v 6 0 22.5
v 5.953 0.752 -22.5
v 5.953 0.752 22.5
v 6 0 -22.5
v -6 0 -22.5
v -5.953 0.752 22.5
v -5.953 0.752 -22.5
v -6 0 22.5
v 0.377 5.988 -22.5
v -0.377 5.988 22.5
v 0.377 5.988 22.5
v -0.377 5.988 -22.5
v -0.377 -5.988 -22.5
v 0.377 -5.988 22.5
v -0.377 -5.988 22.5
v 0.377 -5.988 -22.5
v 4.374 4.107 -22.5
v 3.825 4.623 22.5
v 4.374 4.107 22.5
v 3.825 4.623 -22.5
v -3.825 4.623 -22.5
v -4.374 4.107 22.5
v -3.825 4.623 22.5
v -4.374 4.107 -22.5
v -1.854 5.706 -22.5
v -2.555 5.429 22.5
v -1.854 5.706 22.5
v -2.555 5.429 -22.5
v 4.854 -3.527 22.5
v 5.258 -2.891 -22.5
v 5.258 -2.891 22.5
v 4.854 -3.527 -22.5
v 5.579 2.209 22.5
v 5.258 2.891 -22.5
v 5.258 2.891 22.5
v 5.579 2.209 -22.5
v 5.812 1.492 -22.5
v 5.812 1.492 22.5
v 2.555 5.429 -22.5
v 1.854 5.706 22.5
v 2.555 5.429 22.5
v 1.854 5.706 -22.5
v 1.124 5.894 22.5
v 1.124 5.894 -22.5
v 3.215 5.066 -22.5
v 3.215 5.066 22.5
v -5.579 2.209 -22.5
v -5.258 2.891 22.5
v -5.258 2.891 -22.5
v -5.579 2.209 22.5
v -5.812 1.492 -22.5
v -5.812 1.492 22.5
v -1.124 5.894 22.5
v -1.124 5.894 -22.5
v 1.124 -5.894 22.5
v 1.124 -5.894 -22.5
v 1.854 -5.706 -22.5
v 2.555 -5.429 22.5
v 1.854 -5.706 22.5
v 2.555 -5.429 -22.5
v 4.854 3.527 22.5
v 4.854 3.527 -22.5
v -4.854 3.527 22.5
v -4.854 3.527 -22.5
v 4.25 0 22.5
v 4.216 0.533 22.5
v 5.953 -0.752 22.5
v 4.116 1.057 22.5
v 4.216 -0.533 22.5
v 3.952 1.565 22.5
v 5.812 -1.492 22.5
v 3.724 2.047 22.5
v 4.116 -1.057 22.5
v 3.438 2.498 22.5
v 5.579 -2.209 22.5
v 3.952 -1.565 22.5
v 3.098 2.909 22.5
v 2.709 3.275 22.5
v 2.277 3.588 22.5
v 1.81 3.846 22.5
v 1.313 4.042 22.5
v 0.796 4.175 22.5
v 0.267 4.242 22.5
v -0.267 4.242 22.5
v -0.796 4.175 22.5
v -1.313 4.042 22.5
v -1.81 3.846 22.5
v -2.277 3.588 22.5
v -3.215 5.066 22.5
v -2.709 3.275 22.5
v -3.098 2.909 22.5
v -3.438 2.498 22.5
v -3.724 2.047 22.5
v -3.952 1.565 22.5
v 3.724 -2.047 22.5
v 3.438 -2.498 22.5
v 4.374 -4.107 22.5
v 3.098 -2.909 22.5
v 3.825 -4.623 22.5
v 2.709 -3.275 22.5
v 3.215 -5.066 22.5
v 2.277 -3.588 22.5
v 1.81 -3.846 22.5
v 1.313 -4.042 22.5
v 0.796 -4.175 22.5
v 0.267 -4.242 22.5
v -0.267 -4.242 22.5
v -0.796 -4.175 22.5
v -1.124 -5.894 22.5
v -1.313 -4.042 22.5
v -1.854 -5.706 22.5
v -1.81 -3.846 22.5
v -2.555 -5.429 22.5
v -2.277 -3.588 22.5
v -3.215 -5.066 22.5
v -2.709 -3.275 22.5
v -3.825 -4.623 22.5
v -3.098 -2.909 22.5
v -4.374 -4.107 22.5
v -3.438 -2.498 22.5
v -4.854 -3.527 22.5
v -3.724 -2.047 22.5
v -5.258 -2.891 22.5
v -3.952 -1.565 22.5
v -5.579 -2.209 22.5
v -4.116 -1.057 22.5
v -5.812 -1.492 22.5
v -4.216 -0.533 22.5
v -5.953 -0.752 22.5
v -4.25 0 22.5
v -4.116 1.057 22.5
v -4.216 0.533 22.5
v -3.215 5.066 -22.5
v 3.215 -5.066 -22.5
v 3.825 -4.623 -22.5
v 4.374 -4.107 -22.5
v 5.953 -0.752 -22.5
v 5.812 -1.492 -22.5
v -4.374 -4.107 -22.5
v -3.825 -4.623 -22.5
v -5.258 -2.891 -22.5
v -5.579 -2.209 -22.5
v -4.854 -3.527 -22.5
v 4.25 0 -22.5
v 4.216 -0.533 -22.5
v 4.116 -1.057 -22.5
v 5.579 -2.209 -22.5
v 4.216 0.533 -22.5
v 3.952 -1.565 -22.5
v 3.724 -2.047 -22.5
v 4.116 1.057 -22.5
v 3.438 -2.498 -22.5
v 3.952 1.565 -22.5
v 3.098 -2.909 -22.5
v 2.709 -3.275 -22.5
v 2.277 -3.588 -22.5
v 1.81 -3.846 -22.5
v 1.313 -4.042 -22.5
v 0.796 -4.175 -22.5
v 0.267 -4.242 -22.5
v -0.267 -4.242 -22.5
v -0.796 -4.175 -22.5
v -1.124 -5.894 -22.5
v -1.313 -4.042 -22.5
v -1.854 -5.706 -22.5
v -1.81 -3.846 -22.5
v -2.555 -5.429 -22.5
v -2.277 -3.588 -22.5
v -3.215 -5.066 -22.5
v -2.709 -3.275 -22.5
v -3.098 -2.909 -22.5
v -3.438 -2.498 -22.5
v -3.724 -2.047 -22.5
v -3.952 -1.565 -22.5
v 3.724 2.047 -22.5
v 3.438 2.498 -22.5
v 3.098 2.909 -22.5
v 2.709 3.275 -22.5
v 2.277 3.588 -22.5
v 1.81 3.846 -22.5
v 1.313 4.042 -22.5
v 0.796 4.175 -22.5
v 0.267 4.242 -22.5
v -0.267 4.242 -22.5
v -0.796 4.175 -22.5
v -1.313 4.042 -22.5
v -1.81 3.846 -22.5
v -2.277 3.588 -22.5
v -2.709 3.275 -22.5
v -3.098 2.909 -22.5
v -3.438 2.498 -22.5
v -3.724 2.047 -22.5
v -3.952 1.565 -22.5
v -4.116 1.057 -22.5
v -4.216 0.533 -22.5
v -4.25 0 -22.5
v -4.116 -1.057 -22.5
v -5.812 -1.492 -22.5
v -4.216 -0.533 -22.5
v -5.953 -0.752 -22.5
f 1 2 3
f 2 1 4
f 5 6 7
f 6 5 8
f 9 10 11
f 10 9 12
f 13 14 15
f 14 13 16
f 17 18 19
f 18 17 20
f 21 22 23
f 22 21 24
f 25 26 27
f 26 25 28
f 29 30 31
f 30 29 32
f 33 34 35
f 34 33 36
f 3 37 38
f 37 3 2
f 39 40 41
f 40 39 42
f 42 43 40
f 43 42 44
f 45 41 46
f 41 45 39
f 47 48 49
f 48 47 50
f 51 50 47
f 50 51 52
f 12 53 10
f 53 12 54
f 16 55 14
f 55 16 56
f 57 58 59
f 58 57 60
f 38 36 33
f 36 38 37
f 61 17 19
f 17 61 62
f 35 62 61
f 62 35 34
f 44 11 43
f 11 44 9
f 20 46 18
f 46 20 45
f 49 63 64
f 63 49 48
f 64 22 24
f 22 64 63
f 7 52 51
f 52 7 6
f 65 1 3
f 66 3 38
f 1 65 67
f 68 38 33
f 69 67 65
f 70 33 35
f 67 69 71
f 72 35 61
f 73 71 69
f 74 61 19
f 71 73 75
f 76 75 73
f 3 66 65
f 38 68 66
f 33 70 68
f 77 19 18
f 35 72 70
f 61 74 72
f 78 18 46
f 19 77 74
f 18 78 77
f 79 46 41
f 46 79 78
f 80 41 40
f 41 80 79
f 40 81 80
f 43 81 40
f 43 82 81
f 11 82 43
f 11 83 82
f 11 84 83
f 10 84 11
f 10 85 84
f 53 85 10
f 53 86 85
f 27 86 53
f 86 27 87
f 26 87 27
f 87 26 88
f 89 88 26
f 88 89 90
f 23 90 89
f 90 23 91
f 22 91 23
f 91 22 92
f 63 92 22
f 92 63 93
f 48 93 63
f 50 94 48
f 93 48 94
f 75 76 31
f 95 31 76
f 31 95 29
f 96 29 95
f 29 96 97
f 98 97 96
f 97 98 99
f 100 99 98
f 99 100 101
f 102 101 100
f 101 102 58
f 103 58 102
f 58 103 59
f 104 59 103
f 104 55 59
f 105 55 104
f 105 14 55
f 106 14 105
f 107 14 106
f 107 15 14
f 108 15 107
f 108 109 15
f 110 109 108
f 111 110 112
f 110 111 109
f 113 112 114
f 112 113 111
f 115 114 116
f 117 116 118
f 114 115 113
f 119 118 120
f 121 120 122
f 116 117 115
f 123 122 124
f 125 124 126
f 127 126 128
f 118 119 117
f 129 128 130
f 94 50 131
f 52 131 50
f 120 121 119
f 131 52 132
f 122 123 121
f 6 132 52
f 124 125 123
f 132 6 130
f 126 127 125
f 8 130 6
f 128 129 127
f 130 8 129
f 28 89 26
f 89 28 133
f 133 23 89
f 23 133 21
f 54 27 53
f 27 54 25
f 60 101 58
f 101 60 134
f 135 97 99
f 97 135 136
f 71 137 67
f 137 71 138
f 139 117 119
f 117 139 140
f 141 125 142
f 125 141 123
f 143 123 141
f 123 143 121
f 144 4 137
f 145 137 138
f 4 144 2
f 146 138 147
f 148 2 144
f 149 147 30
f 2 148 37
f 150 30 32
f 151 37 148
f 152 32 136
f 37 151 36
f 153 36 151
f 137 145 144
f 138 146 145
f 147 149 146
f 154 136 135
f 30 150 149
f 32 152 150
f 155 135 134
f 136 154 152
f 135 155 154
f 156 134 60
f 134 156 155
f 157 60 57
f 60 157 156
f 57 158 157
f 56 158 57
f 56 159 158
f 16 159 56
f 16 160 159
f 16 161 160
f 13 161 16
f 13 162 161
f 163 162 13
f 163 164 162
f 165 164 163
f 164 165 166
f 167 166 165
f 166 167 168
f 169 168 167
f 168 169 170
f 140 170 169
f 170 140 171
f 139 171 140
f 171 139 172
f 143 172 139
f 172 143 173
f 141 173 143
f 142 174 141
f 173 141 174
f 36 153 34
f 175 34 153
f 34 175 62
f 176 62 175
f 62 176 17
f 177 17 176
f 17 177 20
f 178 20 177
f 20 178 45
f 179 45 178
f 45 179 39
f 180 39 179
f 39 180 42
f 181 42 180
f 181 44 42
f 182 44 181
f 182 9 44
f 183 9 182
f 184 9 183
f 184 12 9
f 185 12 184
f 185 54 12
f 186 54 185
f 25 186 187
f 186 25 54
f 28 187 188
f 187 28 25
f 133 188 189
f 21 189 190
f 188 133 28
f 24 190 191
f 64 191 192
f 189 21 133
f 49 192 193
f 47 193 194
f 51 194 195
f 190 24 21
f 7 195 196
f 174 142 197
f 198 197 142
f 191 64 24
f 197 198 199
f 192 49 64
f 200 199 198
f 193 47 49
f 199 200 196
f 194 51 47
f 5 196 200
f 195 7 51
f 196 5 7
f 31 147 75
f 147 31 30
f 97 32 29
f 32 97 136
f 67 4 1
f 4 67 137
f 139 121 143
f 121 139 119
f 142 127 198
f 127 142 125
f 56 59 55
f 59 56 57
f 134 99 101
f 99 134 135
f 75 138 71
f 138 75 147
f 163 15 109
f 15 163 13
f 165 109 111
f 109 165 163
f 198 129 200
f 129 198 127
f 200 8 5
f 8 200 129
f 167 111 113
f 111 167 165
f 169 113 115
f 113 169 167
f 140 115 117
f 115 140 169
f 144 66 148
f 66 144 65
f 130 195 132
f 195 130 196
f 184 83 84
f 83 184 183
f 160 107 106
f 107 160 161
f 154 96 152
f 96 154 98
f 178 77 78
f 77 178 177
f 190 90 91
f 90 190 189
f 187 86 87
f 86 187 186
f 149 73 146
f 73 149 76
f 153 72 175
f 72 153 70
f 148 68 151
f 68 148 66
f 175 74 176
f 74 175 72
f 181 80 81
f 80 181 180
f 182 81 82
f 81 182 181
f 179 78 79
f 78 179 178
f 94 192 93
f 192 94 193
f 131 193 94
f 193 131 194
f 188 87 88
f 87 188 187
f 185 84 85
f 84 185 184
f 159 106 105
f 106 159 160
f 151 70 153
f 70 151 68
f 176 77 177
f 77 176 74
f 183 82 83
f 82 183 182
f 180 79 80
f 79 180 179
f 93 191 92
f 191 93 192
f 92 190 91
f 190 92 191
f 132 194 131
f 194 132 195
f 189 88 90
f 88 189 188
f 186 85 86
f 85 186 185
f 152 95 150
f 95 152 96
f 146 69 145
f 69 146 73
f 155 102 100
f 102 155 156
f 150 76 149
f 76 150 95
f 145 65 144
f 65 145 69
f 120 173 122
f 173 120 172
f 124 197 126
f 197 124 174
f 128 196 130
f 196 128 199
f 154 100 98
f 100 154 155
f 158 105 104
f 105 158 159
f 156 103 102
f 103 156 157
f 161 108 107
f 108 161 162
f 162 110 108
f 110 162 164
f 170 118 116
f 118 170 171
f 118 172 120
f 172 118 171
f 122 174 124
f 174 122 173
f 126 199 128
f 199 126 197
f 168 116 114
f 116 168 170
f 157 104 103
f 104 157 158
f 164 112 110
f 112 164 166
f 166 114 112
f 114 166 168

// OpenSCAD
$fn = 50;


difference() {
	union() {
		translate(v = [0, 0, -22.5000000000]) {
			cylinder(h = 45, r = 6.0000000000);
		}
	}
	union() {
		translate(v = [0, 0, -100.0000000000]) {
			cylinder(h = 200, r = 4.2500000000);
		}
	}
}
